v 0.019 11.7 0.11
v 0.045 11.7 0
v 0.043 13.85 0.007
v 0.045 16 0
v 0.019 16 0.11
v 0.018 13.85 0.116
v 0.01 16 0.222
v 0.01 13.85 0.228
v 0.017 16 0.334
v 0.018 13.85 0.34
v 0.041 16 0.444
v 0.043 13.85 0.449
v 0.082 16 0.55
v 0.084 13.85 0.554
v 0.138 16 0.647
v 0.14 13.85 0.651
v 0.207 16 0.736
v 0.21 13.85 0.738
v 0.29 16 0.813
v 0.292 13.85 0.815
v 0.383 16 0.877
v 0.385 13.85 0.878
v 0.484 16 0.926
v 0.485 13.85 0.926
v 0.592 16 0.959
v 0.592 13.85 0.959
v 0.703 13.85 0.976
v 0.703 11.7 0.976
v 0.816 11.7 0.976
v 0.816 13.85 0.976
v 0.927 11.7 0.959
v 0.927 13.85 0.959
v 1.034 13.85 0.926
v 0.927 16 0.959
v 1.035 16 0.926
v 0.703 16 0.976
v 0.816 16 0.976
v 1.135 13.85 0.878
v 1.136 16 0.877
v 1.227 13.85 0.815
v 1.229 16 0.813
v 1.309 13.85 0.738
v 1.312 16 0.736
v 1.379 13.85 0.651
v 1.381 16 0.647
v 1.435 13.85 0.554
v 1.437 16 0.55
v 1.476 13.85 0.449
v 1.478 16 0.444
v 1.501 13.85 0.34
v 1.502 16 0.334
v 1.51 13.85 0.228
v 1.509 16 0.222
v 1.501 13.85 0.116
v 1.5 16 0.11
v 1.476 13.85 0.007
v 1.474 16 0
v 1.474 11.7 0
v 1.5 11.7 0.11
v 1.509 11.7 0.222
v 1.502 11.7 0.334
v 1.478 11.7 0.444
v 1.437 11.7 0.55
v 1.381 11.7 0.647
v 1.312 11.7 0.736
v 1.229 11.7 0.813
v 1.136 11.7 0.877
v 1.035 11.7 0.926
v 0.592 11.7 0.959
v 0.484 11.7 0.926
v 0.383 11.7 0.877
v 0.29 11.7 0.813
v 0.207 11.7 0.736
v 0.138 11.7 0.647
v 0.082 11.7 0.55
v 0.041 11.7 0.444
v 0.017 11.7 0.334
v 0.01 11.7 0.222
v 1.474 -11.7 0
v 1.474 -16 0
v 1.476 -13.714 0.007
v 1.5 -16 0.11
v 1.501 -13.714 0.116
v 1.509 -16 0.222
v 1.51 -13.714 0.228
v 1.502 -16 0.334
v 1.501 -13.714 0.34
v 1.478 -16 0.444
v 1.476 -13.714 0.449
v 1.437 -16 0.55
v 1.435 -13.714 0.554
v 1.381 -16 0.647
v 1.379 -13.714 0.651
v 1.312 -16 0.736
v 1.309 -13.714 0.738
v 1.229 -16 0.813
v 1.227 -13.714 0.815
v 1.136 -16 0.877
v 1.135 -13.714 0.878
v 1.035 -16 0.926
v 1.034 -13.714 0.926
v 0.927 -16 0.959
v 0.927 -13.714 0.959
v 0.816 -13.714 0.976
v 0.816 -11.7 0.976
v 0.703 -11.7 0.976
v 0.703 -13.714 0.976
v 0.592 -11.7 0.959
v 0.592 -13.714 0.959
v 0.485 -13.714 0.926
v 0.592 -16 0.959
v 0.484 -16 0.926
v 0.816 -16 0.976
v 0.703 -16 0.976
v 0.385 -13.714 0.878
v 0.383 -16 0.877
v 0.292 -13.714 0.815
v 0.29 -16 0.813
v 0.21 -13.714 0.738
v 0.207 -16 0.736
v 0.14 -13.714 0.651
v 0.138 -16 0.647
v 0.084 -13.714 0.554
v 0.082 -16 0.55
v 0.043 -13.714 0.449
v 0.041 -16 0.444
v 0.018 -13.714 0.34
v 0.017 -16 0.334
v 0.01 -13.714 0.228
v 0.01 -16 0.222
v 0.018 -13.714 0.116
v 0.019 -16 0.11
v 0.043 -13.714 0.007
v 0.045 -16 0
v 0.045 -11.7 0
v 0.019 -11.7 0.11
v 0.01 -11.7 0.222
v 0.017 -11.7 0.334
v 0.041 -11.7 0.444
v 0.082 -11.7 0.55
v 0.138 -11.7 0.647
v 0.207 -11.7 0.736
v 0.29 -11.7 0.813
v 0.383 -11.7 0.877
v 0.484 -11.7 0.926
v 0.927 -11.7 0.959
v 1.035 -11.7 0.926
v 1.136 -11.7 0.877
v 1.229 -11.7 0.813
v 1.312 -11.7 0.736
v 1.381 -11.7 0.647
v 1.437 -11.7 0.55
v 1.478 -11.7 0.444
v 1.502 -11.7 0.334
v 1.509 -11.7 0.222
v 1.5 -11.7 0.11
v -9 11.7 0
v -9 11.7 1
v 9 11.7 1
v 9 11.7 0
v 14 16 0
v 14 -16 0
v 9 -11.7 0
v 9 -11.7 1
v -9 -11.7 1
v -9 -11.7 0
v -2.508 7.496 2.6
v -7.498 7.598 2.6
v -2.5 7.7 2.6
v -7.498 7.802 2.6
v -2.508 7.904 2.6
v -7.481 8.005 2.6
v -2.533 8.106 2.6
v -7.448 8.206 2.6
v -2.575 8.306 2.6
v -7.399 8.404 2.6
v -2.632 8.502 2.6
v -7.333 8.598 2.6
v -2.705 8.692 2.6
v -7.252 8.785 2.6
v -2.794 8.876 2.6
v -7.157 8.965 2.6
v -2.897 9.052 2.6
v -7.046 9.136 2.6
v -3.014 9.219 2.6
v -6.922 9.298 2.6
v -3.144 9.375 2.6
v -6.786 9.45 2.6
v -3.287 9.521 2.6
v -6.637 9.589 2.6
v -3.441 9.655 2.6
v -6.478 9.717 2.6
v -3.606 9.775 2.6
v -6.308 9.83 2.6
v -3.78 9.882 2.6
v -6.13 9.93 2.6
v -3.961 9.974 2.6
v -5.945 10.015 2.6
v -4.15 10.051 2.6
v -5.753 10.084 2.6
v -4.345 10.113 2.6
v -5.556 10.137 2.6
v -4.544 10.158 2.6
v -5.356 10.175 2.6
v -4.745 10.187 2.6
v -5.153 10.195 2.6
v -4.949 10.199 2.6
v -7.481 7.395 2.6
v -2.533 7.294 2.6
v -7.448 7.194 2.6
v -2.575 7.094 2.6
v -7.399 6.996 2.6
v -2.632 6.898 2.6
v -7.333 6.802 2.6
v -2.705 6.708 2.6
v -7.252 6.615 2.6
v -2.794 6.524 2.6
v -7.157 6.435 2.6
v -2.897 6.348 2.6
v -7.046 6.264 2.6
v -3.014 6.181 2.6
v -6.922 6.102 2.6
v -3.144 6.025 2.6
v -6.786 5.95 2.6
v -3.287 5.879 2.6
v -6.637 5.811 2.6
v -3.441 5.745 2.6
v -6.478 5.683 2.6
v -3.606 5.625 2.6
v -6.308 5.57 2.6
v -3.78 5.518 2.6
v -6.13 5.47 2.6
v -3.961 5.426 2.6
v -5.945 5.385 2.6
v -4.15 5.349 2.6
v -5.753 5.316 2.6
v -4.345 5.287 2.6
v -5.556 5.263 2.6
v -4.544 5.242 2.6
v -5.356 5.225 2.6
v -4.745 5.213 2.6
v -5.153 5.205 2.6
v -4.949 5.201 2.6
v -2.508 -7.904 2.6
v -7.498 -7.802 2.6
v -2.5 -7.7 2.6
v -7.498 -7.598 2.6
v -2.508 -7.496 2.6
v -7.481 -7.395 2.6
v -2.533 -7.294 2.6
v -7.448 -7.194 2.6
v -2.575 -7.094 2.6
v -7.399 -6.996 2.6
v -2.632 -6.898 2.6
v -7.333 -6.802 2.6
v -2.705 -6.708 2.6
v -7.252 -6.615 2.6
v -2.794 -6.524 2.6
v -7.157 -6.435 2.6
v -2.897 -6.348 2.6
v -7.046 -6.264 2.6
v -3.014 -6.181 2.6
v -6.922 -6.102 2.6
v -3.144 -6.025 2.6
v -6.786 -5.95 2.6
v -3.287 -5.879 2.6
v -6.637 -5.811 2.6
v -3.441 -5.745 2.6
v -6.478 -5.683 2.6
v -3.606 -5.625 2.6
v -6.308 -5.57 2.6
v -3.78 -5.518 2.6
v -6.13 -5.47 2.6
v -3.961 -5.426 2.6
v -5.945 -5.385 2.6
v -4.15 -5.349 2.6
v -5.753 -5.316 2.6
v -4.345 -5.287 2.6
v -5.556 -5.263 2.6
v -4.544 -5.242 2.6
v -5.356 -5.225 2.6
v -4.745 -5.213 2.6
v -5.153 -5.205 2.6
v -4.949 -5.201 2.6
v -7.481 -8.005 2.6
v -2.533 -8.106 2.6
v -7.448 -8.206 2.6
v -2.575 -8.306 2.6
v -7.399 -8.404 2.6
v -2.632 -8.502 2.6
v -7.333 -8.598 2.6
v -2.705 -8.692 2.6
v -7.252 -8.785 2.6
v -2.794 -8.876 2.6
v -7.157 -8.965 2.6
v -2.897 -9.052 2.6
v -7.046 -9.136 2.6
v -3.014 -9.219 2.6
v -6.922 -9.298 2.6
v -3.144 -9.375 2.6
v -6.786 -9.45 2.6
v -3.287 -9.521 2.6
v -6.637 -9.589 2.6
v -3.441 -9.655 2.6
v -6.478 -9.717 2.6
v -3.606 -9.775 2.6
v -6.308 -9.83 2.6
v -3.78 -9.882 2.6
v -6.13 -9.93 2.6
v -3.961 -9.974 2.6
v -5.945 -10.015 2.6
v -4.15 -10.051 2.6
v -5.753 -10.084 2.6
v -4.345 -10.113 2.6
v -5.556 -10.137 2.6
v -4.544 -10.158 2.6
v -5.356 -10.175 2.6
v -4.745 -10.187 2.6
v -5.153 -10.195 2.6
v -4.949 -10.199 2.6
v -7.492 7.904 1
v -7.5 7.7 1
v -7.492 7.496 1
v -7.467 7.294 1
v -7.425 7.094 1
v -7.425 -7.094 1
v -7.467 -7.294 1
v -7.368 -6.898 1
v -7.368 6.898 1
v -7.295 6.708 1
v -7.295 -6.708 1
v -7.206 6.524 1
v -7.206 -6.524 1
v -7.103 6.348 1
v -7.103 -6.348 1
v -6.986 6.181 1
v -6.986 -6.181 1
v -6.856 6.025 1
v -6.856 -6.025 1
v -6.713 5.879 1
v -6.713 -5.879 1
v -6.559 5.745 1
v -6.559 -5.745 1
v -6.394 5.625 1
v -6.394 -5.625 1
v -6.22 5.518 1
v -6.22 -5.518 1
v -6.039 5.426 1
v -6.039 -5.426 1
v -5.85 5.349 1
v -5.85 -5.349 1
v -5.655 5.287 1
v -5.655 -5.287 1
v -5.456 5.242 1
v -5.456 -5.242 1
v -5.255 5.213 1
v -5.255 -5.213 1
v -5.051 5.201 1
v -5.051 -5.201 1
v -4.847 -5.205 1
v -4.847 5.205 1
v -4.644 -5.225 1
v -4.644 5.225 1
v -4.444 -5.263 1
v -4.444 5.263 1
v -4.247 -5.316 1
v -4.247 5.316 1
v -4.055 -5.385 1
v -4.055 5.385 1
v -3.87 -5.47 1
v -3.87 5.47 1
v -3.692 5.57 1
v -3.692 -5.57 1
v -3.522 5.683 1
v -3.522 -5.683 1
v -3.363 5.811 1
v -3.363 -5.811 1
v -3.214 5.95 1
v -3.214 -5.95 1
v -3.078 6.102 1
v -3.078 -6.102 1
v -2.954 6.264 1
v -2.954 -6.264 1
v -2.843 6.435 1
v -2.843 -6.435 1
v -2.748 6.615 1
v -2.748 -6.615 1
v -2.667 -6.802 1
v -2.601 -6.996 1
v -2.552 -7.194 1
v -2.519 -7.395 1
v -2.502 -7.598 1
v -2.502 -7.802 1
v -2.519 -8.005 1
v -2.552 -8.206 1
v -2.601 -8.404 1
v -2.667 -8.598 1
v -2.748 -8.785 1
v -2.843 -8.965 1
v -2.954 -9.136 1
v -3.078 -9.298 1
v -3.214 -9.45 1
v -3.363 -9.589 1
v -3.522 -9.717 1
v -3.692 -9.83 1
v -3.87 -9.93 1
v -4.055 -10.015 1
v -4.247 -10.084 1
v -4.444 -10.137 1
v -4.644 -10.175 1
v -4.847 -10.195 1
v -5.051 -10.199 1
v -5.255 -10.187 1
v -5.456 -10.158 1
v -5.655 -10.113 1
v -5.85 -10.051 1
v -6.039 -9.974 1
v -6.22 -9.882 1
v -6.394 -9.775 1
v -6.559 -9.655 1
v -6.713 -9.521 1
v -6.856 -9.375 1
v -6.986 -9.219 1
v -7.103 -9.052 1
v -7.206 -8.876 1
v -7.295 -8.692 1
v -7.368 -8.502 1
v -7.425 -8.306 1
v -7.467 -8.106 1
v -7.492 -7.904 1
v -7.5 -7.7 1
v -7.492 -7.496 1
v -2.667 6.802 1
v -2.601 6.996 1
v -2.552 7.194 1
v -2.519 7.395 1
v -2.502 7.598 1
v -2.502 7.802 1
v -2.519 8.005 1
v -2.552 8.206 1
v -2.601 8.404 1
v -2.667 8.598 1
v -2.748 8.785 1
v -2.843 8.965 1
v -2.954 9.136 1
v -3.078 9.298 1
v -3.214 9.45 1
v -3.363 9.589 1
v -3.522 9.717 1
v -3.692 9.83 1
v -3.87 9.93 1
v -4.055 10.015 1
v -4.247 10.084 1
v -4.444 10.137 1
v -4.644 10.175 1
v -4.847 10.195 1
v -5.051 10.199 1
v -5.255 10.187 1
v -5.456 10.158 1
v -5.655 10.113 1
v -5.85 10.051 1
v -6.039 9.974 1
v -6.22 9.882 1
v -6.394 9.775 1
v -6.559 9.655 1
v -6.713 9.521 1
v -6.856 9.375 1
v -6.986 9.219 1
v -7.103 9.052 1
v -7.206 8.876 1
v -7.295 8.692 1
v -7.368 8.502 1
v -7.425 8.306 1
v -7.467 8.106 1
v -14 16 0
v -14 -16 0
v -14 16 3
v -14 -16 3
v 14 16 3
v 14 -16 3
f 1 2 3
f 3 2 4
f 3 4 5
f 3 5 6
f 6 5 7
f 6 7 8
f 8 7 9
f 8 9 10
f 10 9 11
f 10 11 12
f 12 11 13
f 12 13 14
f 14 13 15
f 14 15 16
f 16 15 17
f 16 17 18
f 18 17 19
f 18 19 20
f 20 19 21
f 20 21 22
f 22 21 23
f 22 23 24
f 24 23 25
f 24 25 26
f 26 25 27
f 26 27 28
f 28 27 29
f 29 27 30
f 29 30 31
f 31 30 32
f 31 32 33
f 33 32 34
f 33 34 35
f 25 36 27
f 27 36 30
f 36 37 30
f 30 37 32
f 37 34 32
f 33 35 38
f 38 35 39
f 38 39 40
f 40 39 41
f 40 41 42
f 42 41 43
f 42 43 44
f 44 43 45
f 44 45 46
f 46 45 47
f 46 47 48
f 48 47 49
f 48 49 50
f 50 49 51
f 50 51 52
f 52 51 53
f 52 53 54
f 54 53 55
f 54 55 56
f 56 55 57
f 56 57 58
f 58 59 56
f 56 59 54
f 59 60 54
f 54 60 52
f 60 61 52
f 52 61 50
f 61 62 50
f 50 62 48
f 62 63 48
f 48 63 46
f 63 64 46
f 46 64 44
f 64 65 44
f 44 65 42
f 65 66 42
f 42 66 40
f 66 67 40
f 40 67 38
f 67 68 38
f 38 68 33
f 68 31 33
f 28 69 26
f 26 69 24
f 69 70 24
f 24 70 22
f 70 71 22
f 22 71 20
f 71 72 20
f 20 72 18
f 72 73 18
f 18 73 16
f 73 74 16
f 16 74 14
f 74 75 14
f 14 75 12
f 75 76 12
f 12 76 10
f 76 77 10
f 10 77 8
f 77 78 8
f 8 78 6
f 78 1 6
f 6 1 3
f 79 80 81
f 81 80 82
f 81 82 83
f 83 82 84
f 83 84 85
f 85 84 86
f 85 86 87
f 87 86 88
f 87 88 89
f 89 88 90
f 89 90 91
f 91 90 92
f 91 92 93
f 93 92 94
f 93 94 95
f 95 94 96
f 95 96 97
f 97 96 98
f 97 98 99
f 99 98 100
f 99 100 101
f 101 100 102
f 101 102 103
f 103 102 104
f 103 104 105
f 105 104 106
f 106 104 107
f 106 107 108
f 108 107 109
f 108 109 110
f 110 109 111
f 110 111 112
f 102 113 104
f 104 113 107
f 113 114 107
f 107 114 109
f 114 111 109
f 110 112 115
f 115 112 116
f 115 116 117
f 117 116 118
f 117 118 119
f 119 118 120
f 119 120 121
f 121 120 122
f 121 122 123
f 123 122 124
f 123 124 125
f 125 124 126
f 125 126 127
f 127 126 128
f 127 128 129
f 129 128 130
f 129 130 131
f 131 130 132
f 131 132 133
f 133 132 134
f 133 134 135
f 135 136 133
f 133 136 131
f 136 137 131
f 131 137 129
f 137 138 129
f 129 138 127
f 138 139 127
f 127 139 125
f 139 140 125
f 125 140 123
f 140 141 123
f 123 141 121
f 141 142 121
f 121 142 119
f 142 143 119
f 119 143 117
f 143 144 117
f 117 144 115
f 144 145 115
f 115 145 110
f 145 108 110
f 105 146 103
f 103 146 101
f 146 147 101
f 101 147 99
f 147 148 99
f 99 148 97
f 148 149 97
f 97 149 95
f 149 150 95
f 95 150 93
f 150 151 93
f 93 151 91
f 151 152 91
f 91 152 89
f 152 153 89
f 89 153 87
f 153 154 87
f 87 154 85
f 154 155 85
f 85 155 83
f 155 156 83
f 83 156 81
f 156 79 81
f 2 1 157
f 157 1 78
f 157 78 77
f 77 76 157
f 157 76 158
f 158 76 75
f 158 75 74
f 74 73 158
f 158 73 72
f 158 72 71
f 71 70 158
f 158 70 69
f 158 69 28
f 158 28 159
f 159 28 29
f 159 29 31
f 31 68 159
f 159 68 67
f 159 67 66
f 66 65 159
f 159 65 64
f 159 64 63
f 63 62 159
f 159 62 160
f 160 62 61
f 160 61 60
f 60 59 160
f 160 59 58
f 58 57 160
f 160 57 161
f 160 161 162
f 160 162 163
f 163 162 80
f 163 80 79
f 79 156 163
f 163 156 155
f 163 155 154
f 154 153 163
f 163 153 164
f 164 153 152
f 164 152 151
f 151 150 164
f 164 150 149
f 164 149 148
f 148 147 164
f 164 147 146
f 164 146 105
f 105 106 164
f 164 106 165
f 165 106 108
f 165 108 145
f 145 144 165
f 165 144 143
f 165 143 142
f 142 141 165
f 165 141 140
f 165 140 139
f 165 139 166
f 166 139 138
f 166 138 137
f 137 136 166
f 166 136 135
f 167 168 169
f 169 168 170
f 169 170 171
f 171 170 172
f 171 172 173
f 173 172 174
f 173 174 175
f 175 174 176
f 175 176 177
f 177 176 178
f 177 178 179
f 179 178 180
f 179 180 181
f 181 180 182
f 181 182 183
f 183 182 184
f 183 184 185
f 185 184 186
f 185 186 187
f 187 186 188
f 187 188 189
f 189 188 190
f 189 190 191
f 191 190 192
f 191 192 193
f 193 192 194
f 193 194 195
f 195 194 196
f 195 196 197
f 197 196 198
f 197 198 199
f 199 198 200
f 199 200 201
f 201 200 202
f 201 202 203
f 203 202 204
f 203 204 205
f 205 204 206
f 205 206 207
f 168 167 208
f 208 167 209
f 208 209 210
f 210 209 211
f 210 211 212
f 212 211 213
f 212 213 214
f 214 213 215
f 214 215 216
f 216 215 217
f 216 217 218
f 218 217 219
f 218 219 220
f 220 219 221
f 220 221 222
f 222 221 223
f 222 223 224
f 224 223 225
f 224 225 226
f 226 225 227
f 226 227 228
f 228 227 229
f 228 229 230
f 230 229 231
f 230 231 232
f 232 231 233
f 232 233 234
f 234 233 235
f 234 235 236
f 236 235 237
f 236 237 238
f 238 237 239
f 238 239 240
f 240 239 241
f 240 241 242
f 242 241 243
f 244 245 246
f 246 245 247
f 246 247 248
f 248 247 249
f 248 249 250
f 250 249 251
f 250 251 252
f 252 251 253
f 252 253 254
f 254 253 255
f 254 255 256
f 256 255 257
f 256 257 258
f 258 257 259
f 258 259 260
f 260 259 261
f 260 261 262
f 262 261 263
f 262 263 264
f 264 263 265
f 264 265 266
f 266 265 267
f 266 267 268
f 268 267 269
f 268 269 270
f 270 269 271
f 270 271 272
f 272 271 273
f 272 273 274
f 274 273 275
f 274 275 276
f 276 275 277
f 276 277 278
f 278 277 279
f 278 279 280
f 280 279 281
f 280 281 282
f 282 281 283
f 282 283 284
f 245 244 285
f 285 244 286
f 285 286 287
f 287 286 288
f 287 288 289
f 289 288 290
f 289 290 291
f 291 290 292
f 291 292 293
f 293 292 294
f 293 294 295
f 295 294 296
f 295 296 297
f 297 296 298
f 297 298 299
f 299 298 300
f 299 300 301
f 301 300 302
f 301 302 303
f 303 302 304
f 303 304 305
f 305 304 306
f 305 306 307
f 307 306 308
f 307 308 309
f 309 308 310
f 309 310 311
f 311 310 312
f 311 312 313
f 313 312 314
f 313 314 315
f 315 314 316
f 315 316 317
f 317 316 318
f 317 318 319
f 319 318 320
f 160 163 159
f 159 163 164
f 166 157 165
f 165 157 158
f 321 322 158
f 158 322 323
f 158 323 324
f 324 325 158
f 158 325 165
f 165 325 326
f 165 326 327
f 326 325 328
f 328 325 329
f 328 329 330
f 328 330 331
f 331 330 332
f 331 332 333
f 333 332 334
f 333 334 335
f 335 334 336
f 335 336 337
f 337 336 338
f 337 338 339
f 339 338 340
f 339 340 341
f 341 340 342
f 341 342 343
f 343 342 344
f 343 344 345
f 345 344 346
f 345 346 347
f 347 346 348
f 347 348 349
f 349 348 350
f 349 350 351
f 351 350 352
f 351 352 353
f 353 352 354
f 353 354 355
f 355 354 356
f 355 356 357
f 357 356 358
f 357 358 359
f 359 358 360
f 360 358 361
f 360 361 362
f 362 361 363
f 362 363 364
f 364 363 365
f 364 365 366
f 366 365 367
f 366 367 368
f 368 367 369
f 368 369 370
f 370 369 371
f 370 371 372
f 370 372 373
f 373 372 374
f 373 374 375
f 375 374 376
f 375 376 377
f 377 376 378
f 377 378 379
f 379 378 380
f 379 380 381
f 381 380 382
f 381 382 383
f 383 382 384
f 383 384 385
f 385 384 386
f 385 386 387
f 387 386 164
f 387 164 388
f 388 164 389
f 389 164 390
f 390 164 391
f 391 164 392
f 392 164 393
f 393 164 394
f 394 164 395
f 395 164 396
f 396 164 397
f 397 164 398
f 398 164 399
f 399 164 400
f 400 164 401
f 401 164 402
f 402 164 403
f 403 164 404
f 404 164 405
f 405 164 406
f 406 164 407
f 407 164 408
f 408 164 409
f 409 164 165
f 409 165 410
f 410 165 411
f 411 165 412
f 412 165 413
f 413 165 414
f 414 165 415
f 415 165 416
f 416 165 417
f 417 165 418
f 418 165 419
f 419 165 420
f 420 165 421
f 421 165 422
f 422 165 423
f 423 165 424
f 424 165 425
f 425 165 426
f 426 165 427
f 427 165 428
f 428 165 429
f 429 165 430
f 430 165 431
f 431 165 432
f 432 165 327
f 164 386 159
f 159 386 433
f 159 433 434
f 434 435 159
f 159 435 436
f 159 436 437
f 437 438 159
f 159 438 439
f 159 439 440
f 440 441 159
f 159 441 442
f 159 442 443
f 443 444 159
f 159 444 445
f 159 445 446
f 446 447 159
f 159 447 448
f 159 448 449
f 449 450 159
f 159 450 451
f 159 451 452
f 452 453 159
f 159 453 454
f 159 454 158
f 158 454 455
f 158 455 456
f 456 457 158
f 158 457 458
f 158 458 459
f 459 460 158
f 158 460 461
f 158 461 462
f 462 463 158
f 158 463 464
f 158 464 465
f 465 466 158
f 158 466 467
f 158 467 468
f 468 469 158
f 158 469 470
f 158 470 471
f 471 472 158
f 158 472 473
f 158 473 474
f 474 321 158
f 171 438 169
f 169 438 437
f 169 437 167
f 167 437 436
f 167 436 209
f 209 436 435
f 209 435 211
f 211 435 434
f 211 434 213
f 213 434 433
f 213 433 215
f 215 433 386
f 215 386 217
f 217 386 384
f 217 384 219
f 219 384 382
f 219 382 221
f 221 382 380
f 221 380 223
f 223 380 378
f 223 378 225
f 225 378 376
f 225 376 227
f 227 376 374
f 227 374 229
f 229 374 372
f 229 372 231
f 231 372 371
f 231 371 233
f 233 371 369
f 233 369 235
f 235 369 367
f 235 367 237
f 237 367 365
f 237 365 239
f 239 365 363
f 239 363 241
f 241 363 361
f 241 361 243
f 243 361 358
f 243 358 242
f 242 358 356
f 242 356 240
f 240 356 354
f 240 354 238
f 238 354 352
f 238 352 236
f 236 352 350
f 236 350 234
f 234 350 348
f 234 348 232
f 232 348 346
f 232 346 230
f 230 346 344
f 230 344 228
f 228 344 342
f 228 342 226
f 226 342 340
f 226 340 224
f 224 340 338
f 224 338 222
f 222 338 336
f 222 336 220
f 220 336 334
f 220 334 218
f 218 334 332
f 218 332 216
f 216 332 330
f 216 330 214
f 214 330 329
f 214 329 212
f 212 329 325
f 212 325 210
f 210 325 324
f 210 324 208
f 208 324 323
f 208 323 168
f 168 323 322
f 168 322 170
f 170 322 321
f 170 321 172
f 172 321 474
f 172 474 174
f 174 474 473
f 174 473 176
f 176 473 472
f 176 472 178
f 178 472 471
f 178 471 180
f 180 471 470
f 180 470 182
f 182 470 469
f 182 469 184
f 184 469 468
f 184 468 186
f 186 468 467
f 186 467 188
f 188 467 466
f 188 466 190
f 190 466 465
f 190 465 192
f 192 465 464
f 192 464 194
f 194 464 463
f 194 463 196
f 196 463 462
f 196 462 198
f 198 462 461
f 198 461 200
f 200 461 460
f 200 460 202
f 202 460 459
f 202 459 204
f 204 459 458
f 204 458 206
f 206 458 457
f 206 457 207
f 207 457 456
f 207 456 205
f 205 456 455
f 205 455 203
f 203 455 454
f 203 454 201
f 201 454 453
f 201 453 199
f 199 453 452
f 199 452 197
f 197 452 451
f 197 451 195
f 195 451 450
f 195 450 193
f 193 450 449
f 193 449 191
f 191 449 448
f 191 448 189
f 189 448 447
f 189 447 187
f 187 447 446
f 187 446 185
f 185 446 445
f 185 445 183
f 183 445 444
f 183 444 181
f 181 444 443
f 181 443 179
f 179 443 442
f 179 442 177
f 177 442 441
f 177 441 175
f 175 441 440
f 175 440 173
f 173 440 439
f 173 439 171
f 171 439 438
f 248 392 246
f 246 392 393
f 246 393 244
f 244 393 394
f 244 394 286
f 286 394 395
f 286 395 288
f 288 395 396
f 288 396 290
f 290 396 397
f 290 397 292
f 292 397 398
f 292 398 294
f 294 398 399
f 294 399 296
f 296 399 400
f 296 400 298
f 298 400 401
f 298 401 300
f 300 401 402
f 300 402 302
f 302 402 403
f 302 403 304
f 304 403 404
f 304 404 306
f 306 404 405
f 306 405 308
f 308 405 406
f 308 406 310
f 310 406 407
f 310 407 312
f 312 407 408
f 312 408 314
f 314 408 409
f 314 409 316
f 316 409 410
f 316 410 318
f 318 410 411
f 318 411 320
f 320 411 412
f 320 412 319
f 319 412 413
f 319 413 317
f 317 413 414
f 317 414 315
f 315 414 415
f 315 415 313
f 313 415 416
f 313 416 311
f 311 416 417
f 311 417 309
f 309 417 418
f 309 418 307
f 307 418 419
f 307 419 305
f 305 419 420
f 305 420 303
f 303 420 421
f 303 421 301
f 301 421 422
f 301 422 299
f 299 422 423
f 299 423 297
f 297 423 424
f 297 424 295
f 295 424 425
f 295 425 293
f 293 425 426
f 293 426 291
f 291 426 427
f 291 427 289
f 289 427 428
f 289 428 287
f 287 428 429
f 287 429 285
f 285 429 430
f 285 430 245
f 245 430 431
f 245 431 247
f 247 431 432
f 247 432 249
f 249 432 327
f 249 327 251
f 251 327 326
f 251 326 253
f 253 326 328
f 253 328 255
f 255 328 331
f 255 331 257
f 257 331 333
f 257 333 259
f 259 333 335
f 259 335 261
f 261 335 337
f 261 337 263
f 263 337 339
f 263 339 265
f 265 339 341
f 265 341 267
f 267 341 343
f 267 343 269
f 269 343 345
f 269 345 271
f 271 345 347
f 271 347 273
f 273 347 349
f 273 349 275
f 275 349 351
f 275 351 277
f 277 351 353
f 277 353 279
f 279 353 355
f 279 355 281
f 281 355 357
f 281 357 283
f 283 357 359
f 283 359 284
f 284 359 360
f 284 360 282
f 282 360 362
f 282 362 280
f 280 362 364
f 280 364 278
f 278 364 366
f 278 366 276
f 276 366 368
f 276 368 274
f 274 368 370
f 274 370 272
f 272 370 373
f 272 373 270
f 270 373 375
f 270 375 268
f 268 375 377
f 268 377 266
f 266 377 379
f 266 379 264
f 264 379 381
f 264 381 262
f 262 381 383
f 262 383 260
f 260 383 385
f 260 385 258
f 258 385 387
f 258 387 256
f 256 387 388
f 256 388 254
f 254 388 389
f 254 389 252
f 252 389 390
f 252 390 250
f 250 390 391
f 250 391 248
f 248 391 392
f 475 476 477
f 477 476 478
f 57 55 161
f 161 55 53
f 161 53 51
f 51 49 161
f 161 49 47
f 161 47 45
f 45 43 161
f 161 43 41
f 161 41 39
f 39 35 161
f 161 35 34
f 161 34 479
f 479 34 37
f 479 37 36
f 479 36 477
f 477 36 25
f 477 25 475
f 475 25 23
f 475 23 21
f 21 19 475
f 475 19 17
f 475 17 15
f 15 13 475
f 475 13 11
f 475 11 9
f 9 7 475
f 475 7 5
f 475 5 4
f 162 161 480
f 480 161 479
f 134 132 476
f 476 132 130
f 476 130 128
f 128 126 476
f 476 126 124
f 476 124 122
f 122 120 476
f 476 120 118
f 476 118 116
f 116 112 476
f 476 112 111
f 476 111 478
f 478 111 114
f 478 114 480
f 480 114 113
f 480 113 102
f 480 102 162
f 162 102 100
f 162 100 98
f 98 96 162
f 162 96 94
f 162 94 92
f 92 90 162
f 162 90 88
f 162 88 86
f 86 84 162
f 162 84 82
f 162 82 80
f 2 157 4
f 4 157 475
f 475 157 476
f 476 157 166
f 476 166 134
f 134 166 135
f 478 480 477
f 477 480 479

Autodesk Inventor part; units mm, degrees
ref_plane "YZ Plane" through (0, 0, 0) normal (1, 0, 0) x (0, 1, 0)
ref_plane "XZ Plane" through (0, 0, 0) normal (0, 1, 0) x (-1, 0, 0)
ref_plane "Work Plane1" through (0, 0, 0) normal (0, 0, 1) x (1, 0, 0)
sketch "Sketch1" plane through (0, 0, 0) normal (0, 0, 1) x (1, 0, 0)
  arc A0 (2.9937, -6.1068) -> (2.9937, 6.1788) centre (1.841, 0.036) ccw projected
  line L0 (2.9937, -6.1068) -> (2.9937, -9.05) projected
  line L1 (2.9937, -9.05) -> (-5, -9.05) projected
  arc A1 (-5, -6.35) -> (-5, -9.05) centre (-5, -7.7) ccw projected
  line L2 (-5, -6.35) -> (-0.5216, -6.35) projected
  line L3 (-0.5216, -6.35) -> (-0.5216, -5.7502) projected
  arc A2 (-0.9246, 5.6409) -> (-0.5216, -5.7502) centre (1.841, 0.036) ccw projected
  line L4 (-0.9246, 5.6409) -> (-0.9246, 6.35) projected
  line L5 (-0.9246, 6.35) -> (-5, 6.35) projected
  arc A3 (-5, 9.05) -> (-5, 6.35) centre (-5, 7.7) ccw projected
  line L6 (-5, 9.05) -> (2.9937, 9.05) projected
  line L7 (2.9937, 9.05) -> (2.9937, 6.1788) projected
  line L8 (14, -16) -> (-14, -16) projected
  line L9 (14, 16) -> (14, -16) projected
  line L10 (-14, 16) -> (14, 16) projected
  line L11 (-14, -16) -> (-14, 16) projected
  point P0 (0, 0)
extrude "Extrusion1" add sketch "Sketch1" along normal blind 3 contours L0 L1 A1 L2 L3 A2 L4 L5 A3 L6 L7 A0 | L8 L11 L10 L9
sketch "Sketch2" plane through (0, 0, 3) normal (0, 0, 1) x (1, 0, 0)
  circle A0 centre (-5, 7.7) radius 1.35 projected
  circle A1 centre (-5, -7.7) radius 1.35 projected
  circle A2 centre (1.841, 0.036) radius 5 projected
  circle A3 centre (1.841, 0.036) radius 5.2
  circle A4 centre (-5, 7.7) radius 1.55
  point P0 (0, 0)
  dimension "d2" = 0.2
  dimension "d3" = 0.2
sketch "Sketch3" plane through (0, 0, 0) normal (0, 0, -1) x (-1, 0, 0)
  circle A0 centre (5, 7.7) radius 2.5 projected
  circle A1 centre (5, -7.7) radius 2.5 projected
  point P0 (0, 0)
extrude "Extrusion2" cut sketch "Sketch3" against normal through all
sketch "Sketch4" plane through (0, 0, 0) normal (0, 0, -1) x (-1, 0, 0)
  line L0 (-14, -16) -> (14, -16) projected
  line L1 (14, -16) -> (14, 16) projected
  line L2 (14, 16) -> (-14, 16) projected
  line L3 (-14, 16) -> (-14, -16) projected
  line L4 (9, -11.7) -> (9, 11.7) projected
  line L5 (-9, -11.7) -> (9, -11.7) projected
  line L6 (-9, 11.7) -> (-9, -11.7) projected
  line L7 (9, 11.7) -> (-9, 11.7) projected
  point P0 (0, 0)
extrude "Extrusion3" cut sketch "Sketch4" against normal blind 1 contours L5 L6 L7 L4
sketch "Sketch5" plane through (0, 0, 3) normal (0, 0, 1) x (1, 0, 0)
  circle A0 centre (-5, 7.7) radius 2.5 projected
  circle A1 centre (-5, -7.7) radius 2.5 projected
  point P0 (0, 0)
ref_plane "Work Plane2" through (-6.35, -9.05, 2.6) normal (0, 0, 1) x (1, 0, 0)
extrude "Extrusion4" add sketch "Sketch5" against normal up to surface (0.4 mm away)
sketch "Sketch6" plane through (-14, 16, 0) normal (0, 1, 0) x (1, 0, 0)
  line L0 (23, -1) -> (5, -1) projected
  line L1 (0, 0) -> (28, 0) projected
  line L2 (0, 0) -> (0, -3) projected
  line L3 (28, -3) -> (0, -3) projected
  line L4 (28, 0) -> (28, -3) projected
  circle A0 centre (14.7595, -0.2282) radius 0.75
  dimension "d11" = 1.5
extrude "Extrusion5" cut sketch "Sketch6" against normal through all contours A0 L1 | L1 A0
properties part number "00_PDMS_mould_1"
